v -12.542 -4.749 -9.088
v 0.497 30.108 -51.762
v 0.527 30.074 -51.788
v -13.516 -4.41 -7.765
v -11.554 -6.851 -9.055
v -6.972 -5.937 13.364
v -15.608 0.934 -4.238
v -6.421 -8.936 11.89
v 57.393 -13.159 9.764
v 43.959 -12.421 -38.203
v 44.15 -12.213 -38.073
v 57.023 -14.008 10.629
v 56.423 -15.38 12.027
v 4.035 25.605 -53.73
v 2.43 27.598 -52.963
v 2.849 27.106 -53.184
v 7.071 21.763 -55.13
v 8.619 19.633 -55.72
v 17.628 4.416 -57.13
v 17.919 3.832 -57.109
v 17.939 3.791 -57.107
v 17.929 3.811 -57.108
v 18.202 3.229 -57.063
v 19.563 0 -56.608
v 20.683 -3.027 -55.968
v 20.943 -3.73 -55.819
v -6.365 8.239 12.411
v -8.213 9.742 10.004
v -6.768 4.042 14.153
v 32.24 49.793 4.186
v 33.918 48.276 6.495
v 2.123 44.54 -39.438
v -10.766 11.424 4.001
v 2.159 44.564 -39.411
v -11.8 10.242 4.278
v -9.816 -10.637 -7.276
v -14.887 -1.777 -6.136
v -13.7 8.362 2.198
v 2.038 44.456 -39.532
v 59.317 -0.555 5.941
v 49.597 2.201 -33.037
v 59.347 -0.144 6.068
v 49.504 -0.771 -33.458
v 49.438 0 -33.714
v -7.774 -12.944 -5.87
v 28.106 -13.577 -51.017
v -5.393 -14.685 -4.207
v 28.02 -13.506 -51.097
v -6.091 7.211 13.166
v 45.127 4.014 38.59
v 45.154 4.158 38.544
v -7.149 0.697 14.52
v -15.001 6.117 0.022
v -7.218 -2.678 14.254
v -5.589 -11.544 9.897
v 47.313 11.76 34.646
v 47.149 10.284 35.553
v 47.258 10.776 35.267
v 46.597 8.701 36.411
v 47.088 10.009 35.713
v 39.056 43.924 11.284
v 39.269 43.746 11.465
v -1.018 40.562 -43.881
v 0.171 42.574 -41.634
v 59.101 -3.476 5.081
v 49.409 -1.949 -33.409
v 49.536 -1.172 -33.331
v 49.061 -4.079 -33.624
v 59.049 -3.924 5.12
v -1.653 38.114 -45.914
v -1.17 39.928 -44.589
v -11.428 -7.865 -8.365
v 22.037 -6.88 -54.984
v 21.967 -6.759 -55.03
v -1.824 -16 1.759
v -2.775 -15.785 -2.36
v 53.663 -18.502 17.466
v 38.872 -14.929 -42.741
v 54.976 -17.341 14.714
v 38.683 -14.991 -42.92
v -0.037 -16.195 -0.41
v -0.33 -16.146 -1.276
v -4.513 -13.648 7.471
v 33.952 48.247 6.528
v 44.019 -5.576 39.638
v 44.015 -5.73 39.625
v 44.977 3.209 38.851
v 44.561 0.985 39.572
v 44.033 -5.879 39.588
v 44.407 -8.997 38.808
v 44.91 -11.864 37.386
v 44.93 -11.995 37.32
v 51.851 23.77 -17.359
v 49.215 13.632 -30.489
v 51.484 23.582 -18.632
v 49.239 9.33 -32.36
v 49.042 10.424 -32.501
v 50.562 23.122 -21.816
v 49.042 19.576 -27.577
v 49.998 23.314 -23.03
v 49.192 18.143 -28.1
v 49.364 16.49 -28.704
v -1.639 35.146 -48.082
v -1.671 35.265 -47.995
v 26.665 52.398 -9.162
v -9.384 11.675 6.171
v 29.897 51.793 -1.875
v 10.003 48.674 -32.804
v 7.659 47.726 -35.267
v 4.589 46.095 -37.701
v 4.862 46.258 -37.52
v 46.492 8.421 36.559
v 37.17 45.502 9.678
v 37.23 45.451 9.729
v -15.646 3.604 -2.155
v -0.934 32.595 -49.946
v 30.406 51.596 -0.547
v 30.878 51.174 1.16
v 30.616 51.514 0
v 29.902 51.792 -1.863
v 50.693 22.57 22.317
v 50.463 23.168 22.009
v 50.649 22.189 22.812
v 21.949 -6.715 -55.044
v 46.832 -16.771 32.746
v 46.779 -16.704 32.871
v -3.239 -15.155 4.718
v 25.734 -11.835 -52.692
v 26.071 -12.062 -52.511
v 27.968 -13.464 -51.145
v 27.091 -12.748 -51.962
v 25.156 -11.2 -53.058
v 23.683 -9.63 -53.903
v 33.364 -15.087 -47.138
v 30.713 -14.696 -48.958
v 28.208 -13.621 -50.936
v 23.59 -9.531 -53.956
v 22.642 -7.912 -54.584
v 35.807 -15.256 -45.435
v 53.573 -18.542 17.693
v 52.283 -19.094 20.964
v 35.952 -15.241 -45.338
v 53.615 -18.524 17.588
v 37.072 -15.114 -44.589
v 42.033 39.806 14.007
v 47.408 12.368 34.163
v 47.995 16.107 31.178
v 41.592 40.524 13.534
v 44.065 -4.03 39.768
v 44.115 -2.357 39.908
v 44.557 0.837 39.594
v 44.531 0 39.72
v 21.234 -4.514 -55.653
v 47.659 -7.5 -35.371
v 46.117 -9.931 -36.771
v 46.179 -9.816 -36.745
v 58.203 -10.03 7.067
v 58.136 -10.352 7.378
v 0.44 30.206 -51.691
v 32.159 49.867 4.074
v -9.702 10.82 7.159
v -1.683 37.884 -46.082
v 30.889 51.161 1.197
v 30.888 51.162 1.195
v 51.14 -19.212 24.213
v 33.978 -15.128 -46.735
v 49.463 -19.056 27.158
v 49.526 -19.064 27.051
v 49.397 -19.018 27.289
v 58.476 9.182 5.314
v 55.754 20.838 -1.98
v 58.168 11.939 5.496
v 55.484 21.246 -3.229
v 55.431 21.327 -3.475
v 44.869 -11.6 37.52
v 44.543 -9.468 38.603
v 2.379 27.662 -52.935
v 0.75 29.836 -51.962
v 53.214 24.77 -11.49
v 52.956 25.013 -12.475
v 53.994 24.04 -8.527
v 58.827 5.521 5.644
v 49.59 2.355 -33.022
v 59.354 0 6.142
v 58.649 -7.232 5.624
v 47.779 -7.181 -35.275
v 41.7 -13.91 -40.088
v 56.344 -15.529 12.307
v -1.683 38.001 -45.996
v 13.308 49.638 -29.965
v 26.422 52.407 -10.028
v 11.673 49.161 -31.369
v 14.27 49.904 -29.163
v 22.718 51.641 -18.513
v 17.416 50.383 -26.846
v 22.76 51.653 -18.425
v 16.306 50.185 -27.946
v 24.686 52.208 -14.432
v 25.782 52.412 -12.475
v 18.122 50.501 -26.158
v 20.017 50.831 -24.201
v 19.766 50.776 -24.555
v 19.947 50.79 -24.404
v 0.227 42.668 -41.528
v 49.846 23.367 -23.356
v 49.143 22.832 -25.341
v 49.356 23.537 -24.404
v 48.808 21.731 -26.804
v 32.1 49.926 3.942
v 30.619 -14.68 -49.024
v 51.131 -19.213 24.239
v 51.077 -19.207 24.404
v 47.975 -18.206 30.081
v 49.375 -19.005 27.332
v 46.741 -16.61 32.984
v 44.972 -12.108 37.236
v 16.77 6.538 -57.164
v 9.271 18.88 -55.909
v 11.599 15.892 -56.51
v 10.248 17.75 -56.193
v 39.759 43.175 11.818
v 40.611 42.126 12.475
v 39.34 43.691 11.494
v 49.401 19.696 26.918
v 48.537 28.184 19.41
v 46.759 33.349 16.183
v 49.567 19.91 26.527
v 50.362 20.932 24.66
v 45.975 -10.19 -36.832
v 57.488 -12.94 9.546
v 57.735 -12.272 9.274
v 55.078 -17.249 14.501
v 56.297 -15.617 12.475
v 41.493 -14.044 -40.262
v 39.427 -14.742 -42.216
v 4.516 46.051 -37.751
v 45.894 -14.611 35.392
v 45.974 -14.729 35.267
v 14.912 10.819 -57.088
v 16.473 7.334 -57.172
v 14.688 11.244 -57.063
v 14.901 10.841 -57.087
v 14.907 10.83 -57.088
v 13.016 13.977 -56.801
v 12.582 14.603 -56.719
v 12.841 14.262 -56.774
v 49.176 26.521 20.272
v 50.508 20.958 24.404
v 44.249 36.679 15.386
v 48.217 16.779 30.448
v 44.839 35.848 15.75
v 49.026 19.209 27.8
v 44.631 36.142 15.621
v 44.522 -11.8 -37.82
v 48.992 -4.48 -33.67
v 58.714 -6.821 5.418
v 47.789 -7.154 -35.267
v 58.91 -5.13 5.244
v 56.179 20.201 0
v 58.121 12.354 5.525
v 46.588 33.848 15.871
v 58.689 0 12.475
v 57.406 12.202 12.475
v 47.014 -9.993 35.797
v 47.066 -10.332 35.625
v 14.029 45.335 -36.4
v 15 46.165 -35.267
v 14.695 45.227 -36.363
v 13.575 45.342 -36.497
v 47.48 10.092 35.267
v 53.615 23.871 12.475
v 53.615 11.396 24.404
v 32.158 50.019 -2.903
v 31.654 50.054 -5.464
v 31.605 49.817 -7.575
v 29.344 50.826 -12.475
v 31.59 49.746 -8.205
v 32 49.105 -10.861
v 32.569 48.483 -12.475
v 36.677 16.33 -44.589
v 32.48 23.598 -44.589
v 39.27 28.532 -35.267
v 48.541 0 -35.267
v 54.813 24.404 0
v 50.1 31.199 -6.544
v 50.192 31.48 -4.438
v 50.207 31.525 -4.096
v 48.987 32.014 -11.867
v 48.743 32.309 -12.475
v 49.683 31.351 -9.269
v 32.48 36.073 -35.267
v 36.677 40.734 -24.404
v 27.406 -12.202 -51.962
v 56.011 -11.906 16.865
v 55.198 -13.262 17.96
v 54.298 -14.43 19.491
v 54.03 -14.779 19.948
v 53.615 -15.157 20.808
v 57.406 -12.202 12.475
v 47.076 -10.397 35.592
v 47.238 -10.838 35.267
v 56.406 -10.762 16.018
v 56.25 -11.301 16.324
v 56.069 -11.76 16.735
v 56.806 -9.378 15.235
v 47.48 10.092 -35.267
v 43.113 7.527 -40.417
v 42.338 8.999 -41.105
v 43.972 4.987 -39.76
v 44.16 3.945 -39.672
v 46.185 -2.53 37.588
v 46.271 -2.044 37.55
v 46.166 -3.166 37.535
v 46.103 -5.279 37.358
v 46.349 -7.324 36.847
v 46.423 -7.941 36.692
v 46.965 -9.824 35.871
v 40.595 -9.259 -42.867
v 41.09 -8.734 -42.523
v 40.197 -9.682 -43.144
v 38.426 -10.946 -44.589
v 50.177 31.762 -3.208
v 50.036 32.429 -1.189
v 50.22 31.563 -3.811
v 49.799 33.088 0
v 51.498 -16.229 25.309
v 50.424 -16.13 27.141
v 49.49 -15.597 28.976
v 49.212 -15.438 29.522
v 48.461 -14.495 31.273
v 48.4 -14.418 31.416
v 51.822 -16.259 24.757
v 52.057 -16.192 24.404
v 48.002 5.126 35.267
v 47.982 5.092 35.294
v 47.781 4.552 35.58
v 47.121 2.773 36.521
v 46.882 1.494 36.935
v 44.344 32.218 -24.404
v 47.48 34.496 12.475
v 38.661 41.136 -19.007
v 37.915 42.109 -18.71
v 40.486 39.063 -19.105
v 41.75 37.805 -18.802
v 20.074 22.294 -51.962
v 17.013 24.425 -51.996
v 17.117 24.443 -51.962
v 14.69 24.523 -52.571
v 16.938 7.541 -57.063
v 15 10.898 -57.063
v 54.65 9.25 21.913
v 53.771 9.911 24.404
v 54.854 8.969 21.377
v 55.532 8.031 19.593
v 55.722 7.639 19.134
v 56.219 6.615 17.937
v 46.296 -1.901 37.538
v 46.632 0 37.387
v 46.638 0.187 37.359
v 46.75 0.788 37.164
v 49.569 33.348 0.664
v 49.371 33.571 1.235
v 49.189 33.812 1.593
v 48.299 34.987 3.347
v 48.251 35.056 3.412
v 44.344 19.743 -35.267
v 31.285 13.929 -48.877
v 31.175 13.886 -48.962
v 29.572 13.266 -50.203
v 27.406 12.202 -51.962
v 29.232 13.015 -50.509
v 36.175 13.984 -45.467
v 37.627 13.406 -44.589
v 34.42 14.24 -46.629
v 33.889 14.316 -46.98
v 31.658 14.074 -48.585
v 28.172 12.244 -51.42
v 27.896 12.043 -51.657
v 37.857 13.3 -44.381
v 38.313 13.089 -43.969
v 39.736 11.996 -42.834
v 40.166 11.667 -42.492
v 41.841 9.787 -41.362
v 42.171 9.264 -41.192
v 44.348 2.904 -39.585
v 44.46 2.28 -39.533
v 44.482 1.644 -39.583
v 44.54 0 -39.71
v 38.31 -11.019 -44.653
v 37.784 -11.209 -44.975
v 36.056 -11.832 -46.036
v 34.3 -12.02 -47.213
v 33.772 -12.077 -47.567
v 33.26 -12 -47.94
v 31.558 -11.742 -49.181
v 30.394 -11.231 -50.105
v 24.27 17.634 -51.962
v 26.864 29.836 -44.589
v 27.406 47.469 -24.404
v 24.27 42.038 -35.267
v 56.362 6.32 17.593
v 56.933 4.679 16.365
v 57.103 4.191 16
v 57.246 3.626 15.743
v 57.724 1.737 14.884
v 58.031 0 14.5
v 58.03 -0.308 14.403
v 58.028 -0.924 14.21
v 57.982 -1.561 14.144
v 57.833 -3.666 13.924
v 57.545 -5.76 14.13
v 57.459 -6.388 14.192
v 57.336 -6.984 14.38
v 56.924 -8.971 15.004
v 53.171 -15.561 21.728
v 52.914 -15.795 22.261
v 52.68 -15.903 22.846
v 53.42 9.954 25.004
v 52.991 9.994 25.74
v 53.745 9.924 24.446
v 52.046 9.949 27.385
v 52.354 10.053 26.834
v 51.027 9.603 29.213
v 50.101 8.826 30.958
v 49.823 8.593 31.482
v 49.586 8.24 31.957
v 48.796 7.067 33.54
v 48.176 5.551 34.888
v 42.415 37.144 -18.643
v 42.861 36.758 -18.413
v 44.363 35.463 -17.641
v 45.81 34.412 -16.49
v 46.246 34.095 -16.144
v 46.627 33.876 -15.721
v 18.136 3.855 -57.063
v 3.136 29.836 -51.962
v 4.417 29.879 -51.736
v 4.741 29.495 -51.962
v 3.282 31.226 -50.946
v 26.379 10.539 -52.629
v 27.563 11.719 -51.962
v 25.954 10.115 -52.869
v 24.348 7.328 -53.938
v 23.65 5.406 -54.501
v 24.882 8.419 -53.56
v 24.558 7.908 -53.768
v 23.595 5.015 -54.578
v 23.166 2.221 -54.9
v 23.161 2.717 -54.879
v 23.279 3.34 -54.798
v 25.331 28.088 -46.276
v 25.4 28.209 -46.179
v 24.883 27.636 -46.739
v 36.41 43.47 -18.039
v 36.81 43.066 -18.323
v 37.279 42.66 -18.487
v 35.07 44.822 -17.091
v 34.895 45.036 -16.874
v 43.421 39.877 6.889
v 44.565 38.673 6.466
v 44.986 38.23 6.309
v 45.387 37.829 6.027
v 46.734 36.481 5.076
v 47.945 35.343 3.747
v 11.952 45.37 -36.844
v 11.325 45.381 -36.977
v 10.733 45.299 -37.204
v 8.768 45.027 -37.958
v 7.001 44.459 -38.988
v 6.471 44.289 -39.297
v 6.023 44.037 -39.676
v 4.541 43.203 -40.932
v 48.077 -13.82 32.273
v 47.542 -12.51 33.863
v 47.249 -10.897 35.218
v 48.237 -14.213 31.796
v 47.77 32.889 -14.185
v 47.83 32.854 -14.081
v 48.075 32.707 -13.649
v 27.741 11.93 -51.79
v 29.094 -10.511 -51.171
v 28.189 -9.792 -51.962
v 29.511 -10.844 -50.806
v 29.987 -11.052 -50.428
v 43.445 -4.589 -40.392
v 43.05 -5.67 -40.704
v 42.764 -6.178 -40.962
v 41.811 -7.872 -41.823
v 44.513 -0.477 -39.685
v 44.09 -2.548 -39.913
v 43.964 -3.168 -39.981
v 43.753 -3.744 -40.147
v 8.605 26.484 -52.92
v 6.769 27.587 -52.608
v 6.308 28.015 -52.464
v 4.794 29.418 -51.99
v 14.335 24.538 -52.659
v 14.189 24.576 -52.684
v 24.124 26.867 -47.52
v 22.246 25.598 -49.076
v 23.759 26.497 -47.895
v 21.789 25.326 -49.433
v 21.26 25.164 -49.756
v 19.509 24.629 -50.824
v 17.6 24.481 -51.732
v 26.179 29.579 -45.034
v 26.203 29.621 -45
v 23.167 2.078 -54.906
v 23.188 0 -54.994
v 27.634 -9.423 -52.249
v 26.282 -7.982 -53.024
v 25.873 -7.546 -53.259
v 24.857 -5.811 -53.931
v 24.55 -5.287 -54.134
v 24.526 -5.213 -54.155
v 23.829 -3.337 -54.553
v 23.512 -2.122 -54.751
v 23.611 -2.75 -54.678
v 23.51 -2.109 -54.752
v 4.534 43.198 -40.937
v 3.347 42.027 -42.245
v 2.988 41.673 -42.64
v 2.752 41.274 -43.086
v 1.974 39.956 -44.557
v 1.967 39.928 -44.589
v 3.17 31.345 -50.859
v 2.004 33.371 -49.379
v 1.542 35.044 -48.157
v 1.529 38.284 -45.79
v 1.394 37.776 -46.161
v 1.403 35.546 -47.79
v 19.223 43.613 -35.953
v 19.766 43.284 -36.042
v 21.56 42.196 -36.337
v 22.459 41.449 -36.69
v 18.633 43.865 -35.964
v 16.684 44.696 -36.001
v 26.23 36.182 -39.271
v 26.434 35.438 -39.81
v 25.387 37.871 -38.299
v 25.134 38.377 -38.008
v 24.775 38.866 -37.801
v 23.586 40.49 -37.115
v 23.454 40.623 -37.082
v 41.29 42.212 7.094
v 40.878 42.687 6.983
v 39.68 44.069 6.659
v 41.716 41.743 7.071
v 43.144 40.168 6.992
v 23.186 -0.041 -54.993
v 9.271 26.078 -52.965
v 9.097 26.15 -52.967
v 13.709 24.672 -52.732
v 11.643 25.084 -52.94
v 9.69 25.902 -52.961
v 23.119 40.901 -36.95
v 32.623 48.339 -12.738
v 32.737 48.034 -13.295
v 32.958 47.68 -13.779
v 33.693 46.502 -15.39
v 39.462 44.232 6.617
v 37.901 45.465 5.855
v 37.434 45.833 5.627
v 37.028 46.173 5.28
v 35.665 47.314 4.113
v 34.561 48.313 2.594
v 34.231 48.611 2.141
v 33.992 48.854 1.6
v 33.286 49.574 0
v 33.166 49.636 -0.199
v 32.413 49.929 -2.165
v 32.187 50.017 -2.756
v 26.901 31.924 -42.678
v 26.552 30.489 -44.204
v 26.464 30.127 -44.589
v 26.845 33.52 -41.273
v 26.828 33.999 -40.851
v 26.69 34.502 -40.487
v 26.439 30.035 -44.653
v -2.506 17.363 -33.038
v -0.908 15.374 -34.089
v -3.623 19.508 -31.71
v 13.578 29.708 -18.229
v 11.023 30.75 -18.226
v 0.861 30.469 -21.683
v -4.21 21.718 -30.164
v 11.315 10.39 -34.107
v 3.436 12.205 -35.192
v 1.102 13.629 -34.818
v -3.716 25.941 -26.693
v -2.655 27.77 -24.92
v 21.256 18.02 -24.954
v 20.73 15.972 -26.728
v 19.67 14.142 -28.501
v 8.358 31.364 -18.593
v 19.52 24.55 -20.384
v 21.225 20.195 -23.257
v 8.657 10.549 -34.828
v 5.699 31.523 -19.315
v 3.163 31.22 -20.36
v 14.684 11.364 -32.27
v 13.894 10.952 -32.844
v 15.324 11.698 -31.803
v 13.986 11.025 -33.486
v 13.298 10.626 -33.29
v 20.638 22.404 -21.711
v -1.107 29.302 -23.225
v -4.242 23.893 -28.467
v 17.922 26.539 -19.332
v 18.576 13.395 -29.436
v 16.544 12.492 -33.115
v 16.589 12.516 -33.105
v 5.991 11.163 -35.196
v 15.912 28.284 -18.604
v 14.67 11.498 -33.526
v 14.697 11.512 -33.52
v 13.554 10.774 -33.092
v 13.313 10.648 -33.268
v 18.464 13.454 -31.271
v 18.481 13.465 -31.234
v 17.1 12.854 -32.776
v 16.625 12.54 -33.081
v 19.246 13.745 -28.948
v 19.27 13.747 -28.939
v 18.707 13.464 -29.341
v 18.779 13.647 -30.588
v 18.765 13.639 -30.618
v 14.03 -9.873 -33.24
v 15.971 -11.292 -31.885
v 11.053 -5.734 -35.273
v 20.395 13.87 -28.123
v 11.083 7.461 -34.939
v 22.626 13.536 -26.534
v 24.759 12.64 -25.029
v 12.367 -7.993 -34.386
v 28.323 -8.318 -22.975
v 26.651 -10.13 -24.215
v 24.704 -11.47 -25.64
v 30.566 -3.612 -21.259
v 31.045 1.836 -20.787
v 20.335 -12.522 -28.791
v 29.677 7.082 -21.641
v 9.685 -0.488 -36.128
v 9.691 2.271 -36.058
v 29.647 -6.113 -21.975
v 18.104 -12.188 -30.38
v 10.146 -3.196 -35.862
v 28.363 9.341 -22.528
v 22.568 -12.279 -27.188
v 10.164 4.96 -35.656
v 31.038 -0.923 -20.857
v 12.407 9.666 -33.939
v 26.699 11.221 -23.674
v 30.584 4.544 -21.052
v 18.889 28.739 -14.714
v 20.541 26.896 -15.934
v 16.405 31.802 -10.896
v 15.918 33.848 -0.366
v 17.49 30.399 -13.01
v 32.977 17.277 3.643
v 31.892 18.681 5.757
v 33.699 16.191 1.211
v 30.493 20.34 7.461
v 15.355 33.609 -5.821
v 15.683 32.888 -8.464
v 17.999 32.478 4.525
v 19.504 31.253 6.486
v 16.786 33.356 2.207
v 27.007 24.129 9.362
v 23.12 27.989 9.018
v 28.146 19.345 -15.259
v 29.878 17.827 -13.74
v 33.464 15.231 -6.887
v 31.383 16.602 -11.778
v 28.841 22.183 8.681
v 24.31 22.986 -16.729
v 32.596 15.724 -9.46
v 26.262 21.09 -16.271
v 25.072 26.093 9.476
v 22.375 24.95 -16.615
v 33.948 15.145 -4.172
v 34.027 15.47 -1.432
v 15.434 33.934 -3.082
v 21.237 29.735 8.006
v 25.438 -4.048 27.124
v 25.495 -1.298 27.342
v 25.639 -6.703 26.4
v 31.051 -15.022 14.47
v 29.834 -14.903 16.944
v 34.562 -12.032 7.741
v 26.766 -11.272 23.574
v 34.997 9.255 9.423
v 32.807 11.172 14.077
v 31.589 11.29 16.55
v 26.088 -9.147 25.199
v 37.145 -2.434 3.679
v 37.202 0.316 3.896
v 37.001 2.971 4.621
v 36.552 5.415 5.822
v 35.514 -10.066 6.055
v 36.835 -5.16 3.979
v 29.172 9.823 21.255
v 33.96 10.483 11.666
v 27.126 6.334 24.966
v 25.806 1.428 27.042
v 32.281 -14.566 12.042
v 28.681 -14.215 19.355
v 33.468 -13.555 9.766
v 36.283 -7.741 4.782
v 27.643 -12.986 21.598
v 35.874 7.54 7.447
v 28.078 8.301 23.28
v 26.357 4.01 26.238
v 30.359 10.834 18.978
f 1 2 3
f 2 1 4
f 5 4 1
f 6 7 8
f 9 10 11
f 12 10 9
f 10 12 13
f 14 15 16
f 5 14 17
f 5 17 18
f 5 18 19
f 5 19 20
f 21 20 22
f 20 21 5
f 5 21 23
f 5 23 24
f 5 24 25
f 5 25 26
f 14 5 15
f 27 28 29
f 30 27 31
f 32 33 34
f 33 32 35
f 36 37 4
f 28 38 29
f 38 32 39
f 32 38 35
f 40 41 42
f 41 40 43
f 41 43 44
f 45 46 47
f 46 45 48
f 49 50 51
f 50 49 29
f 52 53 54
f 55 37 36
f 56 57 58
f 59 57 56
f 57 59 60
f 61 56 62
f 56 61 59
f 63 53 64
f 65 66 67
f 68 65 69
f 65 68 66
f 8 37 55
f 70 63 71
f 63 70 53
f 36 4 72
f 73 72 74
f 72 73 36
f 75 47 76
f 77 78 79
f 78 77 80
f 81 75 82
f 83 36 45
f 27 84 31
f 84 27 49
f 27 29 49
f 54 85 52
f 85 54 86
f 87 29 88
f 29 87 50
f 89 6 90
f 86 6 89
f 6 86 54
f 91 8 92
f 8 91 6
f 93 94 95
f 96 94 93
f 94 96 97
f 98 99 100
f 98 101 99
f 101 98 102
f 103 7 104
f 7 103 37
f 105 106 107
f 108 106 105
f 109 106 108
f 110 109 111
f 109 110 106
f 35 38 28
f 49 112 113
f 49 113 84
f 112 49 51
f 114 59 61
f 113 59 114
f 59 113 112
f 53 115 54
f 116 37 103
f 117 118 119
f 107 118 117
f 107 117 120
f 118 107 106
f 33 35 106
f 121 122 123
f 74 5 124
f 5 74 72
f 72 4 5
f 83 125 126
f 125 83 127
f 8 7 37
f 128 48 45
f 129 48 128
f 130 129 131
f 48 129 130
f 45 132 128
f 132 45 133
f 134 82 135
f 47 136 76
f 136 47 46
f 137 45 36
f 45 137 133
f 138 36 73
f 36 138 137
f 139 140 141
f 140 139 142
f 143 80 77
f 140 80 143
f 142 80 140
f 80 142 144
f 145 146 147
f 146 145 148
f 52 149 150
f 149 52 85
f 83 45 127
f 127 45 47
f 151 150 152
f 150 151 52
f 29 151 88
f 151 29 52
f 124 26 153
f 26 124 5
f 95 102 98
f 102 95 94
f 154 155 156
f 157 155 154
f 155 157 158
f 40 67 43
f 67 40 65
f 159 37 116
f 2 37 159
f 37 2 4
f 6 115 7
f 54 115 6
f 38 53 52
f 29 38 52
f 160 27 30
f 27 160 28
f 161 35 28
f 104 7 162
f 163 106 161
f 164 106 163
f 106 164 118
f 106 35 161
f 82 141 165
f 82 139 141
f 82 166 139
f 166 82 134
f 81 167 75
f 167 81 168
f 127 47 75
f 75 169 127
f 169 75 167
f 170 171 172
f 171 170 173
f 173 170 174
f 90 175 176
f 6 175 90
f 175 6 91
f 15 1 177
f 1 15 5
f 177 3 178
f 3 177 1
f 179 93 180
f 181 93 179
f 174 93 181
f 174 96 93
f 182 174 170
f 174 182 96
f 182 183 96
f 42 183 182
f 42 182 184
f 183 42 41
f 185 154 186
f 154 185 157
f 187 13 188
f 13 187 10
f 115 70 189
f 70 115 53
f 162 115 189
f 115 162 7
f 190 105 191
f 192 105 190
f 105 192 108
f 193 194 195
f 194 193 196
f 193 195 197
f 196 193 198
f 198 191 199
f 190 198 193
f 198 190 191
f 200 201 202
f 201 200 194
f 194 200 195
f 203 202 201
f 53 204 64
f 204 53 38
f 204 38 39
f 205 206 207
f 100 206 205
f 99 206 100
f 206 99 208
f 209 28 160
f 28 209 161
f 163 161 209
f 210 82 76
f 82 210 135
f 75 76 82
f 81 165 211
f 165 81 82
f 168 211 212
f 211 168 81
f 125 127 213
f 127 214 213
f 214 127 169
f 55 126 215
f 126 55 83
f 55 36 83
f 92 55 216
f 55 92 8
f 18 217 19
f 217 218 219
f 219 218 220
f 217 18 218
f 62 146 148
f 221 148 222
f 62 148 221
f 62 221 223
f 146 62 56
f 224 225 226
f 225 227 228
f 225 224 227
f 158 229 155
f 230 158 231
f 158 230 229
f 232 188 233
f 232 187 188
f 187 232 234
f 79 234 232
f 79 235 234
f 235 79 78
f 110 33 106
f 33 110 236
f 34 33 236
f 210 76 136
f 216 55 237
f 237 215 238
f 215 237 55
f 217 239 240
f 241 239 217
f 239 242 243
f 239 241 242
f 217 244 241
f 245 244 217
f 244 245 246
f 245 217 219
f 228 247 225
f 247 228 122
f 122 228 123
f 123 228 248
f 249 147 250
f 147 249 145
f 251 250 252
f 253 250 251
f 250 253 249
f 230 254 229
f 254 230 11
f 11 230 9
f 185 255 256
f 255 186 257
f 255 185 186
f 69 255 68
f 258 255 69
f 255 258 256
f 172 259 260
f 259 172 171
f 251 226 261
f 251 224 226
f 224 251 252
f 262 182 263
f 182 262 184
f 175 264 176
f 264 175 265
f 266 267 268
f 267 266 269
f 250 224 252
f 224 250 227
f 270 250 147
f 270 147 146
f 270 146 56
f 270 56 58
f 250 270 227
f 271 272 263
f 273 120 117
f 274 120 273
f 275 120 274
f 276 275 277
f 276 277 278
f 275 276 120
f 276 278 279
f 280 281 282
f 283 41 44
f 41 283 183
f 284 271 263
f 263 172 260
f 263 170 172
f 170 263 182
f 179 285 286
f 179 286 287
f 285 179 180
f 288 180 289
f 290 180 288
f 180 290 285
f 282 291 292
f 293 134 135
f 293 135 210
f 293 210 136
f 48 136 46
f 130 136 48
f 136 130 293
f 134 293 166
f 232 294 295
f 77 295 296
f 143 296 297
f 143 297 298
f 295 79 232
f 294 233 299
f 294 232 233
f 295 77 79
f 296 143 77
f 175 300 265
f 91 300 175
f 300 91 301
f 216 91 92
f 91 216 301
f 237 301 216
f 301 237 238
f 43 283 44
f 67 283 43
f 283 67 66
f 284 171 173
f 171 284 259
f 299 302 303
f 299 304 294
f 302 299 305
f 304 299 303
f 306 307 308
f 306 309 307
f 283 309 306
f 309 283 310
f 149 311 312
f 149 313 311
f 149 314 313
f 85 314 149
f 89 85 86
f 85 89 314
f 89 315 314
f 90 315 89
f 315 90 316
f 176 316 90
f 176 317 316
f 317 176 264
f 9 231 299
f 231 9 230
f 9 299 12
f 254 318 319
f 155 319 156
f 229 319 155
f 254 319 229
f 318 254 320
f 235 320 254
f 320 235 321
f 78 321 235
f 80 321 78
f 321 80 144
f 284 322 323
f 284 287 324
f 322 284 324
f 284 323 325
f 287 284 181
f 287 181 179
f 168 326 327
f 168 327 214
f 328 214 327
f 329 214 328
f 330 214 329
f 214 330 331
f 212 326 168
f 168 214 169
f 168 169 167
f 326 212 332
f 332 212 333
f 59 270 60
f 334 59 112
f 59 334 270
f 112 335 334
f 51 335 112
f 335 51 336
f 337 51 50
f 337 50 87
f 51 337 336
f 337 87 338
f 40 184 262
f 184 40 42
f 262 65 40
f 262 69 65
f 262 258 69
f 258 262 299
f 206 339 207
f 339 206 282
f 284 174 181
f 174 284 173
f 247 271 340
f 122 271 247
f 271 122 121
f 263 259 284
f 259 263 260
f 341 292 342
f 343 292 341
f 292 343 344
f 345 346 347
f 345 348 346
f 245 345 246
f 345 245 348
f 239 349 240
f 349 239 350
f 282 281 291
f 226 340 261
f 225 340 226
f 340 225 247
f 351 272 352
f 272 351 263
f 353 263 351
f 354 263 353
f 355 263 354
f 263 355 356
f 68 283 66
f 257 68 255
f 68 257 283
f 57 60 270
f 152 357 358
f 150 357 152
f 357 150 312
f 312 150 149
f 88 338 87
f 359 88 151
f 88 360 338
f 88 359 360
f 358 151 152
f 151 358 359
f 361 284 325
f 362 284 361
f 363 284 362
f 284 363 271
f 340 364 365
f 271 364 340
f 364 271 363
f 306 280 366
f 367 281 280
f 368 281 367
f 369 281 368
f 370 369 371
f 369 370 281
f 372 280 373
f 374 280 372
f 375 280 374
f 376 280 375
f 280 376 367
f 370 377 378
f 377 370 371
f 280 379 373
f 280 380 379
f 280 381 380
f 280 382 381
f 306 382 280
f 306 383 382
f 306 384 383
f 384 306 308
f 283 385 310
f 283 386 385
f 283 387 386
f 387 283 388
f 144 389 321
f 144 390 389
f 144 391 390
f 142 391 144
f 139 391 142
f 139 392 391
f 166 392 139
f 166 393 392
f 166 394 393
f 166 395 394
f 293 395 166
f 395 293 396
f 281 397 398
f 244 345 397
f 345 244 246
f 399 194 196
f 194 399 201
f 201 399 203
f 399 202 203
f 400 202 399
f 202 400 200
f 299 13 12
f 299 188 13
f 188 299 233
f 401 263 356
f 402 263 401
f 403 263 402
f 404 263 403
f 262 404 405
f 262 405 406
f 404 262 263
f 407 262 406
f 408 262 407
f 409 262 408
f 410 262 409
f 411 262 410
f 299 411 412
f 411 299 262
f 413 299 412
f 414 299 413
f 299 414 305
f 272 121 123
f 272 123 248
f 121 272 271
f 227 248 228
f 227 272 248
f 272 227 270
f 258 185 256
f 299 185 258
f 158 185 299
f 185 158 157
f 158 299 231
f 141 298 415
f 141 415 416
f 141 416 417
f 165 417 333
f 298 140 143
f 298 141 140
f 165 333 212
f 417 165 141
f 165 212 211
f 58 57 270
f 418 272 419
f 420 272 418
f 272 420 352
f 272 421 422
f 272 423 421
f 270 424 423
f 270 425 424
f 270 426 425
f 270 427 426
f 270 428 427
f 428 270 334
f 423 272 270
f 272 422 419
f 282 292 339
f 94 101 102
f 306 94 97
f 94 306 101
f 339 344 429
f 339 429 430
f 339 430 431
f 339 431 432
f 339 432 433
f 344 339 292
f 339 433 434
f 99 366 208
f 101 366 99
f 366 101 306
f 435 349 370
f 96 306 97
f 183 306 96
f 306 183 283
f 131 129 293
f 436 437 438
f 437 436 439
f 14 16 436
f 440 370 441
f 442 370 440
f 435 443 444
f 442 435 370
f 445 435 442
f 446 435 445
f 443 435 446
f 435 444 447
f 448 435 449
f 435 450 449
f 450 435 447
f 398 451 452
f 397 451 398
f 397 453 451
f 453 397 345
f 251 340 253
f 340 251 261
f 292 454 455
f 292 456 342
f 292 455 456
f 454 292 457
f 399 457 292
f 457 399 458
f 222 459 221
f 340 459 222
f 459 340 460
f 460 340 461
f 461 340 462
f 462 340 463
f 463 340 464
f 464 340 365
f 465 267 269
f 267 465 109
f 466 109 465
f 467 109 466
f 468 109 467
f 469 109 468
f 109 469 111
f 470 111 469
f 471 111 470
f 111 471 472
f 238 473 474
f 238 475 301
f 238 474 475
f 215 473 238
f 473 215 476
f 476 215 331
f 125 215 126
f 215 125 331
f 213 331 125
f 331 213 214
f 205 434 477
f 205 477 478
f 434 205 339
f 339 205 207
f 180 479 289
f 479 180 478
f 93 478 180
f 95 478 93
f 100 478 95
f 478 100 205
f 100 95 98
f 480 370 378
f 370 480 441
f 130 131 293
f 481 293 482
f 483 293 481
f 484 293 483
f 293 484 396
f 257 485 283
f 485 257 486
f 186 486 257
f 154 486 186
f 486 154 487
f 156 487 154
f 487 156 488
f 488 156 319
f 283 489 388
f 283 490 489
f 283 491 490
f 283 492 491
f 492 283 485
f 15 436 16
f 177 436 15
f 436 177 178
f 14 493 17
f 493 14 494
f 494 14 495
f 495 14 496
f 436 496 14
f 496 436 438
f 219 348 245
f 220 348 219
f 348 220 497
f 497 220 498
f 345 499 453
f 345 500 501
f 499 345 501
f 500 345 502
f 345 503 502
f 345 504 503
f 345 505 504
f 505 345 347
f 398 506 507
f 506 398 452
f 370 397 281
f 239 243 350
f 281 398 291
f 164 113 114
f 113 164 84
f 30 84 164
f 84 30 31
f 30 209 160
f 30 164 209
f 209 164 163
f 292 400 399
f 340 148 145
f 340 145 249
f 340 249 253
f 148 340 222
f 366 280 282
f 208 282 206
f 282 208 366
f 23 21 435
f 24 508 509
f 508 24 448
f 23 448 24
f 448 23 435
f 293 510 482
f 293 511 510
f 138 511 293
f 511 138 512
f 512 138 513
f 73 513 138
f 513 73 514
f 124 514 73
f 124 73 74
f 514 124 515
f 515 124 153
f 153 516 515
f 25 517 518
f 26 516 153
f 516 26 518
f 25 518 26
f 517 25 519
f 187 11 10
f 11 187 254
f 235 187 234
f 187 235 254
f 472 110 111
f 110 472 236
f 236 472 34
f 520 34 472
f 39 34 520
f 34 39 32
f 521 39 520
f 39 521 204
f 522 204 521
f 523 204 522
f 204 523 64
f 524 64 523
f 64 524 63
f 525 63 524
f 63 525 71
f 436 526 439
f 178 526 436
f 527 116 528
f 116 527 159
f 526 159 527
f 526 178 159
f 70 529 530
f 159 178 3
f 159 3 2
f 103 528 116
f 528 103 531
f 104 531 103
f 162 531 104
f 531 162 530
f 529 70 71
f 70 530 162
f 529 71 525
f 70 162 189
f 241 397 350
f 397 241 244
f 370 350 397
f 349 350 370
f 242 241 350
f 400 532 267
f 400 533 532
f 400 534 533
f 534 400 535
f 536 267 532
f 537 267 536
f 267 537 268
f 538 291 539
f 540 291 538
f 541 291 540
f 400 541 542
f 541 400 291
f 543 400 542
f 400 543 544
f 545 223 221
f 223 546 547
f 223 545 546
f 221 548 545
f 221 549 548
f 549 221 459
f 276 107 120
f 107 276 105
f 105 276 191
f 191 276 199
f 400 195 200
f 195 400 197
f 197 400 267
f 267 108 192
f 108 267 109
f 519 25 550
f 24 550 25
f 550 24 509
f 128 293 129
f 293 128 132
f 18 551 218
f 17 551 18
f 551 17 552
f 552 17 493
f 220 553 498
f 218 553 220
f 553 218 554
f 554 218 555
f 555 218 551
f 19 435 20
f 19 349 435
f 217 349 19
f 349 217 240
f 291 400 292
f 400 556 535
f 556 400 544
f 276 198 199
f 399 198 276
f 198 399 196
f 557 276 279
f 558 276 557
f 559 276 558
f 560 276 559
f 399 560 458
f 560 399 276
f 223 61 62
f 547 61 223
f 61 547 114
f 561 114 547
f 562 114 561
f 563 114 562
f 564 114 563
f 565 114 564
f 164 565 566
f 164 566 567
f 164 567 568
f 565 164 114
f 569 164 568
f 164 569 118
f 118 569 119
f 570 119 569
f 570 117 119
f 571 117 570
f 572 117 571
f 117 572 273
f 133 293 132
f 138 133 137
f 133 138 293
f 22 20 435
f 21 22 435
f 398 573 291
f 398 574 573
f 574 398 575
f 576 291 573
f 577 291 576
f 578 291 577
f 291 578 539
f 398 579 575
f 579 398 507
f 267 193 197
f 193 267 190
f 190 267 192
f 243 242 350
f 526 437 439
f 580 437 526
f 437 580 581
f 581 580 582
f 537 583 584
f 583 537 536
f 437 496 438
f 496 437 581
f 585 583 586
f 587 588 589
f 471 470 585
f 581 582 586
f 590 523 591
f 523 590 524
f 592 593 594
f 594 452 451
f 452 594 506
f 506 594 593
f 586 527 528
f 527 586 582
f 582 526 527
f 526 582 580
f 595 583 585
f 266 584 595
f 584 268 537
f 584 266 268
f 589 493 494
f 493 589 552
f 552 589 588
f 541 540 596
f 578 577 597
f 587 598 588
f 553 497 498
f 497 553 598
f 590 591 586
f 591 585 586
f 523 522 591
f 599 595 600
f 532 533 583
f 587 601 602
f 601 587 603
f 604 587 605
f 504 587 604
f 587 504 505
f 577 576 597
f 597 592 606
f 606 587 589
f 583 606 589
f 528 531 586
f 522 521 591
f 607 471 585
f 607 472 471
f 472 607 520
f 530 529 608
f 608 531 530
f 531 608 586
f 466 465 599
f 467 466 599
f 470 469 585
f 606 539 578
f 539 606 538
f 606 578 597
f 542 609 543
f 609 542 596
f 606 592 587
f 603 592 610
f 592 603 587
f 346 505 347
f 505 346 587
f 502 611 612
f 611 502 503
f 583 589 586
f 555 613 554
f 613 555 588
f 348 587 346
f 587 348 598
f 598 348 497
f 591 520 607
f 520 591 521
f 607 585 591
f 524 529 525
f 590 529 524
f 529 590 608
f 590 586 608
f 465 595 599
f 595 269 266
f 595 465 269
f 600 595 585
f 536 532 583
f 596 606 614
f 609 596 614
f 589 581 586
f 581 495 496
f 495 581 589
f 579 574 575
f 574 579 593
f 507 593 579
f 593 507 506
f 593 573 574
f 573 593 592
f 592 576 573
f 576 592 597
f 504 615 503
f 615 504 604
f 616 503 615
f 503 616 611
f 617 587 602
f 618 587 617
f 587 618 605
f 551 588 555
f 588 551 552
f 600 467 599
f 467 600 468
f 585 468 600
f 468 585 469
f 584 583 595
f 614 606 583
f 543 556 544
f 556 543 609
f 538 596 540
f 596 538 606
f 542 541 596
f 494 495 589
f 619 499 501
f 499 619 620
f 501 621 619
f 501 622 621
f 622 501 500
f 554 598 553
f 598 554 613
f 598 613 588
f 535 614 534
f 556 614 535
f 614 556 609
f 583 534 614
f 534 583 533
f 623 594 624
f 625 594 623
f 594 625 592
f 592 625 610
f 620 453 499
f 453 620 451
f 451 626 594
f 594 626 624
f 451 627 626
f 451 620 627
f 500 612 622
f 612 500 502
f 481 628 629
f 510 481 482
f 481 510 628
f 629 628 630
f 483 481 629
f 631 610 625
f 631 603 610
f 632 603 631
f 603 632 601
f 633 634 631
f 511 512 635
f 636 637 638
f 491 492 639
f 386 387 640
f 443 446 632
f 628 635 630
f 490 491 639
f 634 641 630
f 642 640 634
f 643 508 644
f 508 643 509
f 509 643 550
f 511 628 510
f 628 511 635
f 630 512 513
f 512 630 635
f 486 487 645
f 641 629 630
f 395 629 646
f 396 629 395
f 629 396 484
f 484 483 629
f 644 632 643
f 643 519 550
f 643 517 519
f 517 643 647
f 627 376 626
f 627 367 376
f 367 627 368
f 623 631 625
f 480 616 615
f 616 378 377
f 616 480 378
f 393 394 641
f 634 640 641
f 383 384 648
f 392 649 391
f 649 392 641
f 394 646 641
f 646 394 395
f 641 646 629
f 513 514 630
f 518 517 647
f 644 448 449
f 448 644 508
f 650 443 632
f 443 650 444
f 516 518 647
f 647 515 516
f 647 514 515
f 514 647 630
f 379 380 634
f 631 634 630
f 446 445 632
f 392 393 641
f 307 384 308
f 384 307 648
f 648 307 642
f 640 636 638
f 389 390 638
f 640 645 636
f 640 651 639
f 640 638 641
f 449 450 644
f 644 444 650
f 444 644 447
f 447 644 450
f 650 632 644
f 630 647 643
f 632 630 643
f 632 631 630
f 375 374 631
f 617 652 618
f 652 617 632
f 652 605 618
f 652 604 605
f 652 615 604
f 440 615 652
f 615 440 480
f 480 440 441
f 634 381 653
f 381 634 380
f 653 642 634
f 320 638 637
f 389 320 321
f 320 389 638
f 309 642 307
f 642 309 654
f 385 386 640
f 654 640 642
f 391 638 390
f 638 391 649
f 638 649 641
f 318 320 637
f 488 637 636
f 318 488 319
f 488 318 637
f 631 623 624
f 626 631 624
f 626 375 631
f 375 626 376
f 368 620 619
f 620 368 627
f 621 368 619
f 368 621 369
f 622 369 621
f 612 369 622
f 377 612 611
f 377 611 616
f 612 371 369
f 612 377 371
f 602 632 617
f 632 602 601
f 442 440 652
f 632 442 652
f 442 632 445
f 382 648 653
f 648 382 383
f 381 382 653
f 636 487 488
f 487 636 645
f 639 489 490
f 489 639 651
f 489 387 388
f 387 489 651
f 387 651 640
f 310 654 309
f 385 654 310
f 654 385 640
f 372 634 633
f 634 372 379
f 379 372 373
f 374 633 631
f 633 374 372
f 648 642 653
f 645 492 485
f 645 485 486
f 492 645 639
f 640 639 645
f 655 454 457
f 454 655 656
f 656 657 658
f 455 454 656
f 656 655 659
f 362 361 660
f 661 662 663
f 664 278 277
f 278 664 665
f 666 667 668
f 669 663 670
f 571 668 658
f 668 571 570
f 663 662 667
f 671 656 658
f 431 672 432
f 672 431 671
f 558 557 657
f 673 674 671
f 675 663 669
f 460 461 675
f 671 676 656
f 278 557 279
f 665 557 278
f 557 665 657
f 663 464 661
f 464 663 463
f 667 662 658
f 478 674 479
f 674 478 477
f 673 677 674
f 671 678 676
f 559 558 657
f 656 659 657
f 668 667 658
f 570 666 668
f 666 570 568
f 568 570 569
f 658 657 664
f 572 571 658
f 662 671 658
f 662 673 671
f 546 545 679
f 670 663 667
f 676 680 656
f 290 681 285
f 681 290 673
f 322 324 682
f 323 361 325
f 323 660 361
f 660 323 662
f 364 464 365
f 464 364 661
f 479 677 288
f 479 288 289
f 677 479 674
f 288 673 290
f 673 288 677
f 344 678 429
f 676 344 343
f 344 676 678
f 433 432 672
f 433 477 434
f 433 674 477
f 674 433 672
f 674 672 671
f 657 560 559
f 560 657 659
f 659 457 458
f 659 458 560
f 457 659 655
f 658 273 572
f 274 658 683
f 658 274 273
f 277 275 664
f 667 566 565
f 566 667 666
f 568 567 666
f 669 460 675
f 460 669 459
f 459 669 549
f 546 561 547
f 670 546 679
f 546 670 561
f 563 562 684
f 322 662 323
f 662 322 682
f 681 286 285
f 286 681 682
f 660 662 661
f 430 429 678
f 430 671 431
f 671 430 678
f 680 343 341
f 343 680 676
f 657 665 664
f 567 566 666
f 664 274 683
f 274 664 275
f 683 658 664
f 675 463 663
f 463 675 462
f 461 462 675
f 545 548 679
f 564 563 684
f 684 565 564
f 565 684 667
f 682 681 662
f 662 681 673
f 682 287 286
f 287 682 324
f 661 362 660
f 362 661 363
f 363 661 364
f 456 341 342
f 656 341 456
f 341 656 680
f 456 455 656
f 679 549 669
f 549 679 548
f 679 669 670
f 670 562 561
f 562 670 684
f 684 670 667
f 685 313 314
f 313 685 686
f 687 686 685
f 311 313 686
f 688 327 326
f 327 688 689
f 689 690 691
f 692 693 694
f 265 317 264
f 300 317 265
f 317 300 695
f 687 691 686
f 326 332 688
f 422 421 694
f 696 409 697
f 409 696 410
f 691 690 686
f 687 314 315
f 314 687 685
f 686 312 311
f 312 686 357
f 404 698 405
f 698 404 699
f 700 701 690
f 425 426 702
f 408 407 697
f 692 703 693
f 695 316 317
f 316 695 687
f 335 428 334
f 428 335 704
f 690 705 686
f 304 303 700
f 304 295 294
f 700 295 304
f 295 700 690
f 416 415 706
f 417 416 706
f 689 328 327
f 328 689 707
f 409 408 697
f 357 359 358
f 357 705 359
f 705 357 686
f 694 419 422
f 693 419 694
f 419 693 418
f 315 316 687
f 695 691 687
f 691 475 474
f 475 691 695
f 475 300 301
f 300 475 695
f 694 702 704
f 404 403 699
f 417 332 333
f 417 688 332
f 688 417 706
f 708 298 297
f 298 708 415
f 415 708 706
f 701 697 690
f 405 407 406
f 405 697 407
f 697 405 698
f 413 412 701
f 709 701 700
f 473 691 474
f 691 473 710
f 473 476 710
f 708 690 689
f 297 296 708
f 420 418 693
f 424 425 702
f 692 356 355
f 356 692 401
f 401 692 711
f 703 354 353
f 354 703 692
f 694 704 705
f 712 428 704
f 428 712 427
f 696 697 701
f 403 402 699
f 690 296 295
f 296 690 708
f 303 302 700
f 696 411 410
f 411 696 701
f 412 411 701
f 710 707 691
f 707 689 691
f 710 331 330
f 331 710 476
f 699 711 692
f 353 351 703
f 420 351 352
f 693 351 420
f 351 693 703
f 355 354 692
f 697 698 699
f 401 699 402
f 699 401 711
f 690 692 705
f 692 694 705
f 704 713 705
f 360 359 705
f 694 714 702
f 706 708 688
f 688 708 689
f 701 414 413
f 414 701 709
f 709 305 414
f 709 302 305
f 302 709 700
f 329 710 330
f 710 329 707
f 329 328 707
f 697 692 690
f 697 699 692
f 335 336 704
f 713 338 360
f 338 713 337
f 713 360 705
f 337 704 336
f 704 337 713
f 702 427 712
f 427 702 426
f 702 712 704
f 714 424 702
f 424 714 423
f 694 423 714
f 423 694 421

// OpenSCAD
difference() {
	intersection() {
		hull() {
			rotate(a = -122.8372704074, v = [-0.3887756212, 0.7448578152, 0.0000000000]) {
				rotate(a = -90.0000000000, v = [-0.0494204846, 0.9987780613, 0.0000000000]) {
					cylinder(h = 60, r = 16.2000000000);
				}
			}
			rotate(a = -122.8372704074, v = [-0.3887756212, 0.7448578152, 0.0000000000]) {
				rotate(a = -90.0000000000, v = [-0.6712971803, 0.7411882998, 0.0000000000]) {
					cylinder(h = 60, r = 16.2000000000);
				}
			}
			rotate(a = -122.8372704074, v = [-0.3887756212, 0.7448578152, 0.0000000000]) {
				rotate(a = -137.8905281201, v = [-0.0169531971, 0.6703349256, 0.0000000000]) {
					cylinder(h = 60, r = 16.2000000000);
				}
			}
			rotate(a = -122.8372704074, v = [-0.3887756212, 0.7448578152, 0.0000000000]) {
				rotate(a = -152.3897027579, v = [-0.4295311738, -0.1740510927, 0.0000000000]) {
					cylinder(h = 60, r = 16.2000000000);
				}
			}
		}
		sphere(r = 60);
	}
	union() {
		rotate(a = -122.8372704074, v = [-0.3887756212, 0.7448578152, 0.0000000000]) {
			rotate(a = -90.0000000000, v = [-0.0494204846, 0.9987780613, 0.0000000000]) {
				translate(v = [0, 0, 35]) {
					cylinder(h = 100, r = 13.2000000000);
				}
			}
		}
		rotate(a = -122.8372704074, v = [-0.3887756212, 0.7448578152, 0.0000000000]) {
			rotate(a = -90.0000000000, v = [-0.6712971803, 0.7411882998, 0.0000000000]) {
				translate(v = [0, 0, 35]) {
					cylinder(h = 100, r = 13.2000000000);
				}
			}
		}
		rotate(a = -122.8372704074, v = [-0.3887756212, 0.7448578152, 0.0000000000]) {
			rotate(a = -137.8905281201, v = [-0.0169531971, 0.6703349256, 0.0000000000]) {
				translate(v = [0, 0, 35]) {
					cylinder(h = 100, r = 13.2000000000);
				}
			}
		}
		rotate(a = -122.8372704074, v = [-0.3887756212, 0.7448578152, 0.0000000000]) {
			rotate(a = -152.3897027579, v = [-0.4295311738, -0.1740510927, 0.0000000000]) {
				translate(v = [0, 0, 35]) {
					cylinder(h = 100, r = 13.2000000000);
				}
			}
		}
	}
}
